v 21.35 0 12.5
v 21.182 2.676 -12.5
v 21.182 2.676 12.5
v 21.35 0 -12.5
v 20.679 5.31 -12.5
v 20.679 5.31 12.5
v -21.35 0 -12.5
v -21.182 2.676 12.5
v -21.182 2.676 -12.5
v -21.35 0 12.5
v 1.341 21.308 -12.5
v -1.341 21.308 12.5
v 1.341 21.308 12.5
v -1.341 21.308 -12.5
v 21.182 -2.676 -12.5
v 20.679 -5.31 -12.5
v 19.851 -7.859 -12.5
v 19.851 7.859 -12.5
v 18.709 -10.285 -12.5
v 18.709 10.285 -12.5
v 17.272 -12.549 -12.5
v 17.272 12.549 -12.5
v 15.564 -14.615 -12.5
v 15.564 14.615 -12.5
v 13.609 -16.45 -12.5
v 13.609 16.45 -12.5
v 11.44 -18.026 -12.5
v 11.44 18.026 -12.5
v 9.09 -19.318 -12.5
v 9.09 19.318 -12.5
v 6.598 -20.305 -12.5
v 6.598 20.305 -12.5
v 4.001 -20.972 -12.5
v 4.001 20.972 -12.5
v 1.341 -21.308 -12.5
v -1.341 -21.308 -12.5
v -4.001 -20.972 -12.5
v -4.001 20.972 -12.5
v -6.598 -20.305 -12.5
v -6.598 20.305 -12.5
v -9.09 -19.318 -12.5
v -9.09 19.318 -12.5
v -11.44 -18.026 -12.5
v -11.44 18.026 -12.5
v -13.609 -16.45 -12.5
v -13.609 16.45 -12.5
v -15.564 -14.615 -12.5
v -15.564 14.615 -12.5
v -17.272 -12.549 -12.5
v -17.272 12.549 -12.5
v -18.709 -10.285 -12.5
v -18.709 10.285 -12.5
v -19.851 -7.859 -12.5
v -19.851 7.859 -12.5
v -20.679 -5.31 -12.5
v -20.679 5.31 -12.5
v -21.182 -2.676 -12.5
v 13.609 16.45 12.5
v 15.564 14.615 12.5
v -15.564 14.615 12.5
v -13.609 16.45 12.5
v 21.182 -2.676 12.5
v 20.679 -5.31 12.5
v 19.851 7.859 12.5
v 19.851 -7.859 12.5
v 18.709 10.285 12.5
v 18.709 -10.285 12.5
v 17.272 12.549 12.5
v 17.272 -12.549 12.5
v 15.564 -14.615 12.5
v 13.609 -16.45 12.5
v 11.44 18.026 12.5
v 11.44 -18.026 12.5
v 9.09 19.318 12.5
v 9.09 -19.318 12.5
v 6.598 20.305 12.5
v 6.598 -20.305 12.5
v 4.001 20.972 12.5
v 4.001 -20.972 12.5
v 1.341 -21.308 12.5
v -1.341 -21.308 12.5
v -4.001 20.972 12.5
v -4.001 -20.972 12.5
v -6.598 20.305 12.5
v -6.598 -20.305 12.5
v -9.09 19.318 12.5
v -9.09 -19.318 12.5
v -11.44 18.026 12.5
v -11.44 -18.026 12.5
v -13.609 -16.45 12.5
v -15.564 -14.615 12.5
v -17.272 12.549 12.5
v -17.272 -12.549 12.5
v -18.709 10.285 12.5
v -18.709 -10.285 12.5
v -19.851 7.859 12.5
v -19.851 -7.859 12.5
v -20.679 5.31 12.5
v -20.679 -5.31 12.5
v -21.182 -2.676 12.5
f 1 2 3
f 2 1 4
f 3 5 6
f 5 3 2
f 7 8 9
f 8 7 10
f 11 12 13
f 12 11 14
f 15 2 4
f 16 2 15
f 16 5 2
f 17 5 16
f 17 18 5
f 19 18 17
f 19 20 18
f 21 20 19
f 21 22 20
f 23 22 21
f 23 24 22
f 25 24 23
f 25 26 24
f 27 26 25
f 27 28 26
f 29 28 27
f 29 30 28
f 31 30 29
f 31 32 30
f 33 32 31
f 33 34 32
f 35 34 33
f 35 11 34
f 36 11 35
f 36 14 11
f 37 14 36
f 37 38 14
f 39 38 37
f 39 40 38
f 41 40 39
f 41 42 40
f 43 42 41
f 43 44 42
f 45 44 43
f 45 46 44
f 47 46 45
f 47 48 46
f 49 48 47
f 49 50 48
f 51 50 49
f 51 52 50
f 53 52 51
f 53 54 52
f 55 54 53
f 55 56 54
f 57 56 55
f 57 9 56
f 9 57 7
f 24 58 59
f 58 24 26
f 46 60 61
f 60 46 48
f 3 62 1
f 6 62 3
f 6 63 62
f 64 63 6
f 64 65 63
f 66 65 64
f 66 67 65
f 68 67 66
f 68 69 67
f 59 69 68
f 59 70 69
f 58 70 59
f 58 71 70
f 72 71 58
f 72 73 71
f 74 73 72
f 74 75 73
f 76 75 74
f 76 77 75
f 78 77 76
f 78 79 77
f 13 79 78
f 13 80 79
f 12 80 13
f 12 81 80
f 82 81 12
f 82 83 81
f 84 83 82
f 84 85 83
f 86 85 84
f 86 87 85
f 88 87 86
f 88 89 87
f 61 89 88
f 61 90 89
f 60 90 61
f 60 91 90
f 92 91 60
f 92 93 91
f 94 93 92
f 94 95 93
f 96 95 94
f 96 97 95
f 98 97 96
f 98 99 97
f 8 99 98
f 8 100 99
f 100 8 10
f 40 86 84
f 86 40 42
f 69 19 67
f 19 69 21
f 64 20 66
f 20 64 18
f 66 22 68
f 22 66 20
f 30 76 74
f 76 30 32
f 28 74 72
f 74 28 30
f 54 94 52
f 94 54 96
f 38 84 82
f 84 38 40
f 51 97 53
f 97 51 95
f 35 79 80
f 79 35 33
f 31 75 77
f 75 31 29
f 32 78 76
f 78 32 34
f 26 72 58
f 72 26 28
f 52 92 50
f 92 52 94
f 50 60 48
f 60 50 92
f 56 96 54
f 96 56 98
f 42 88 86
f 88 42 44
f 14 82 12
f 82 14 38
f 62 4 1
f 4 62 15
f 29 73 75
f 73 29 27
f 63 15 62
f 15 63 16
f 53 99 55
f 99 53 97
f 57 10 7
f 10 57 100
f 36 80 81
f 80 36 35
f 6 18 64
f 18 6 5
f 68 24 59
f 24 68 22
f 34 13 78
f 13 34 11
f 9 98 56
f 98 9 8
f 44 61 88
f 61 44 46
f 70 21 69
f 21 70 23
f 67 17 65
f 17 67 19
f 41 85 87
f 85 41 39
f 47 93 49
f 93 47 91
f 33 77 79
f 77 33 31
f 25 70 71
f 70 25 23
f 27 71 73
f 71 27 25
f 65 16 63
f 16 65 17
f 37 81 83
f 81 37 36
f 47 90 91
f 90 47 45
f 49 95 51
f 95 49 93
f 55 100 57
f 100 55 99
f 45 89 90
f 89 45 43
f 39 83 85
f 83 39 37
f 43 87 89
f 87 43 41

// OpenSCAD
$fn = 50;


difference() {
	union() {
		translate(v = [0, 0, -12.5000000000]) {
			cylinder(h = 25, r = 21.3500000000);
		}
	}
	union() {
		translate(v = [0, 0, -100.0000000000]) {
			cylinder(h = 200, r = 0);
		}
	}
}
